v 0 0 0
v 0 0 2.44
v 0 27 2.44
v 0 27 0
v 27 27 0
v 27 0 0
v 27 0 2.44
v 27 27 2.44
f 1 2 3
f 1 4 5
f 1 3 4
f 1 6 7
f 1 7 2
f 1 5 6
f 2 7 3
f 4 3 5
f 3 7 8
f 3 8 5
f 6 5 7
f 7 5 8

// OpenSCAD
/* Warning, this is a very basic generator with a lot of approximation 
input data : [BGA, NJC, 27x27x2.44mm, 676, , A, C04-25504A]
generated by com.zoubworld.electronics.cad.model3d.Basic
Date : Sun Feb 15 10:50:49 CET 2026
*/

//body
color("black")
translate([0,0,0])
cube([27.0,27.0,2.44], center=false);
